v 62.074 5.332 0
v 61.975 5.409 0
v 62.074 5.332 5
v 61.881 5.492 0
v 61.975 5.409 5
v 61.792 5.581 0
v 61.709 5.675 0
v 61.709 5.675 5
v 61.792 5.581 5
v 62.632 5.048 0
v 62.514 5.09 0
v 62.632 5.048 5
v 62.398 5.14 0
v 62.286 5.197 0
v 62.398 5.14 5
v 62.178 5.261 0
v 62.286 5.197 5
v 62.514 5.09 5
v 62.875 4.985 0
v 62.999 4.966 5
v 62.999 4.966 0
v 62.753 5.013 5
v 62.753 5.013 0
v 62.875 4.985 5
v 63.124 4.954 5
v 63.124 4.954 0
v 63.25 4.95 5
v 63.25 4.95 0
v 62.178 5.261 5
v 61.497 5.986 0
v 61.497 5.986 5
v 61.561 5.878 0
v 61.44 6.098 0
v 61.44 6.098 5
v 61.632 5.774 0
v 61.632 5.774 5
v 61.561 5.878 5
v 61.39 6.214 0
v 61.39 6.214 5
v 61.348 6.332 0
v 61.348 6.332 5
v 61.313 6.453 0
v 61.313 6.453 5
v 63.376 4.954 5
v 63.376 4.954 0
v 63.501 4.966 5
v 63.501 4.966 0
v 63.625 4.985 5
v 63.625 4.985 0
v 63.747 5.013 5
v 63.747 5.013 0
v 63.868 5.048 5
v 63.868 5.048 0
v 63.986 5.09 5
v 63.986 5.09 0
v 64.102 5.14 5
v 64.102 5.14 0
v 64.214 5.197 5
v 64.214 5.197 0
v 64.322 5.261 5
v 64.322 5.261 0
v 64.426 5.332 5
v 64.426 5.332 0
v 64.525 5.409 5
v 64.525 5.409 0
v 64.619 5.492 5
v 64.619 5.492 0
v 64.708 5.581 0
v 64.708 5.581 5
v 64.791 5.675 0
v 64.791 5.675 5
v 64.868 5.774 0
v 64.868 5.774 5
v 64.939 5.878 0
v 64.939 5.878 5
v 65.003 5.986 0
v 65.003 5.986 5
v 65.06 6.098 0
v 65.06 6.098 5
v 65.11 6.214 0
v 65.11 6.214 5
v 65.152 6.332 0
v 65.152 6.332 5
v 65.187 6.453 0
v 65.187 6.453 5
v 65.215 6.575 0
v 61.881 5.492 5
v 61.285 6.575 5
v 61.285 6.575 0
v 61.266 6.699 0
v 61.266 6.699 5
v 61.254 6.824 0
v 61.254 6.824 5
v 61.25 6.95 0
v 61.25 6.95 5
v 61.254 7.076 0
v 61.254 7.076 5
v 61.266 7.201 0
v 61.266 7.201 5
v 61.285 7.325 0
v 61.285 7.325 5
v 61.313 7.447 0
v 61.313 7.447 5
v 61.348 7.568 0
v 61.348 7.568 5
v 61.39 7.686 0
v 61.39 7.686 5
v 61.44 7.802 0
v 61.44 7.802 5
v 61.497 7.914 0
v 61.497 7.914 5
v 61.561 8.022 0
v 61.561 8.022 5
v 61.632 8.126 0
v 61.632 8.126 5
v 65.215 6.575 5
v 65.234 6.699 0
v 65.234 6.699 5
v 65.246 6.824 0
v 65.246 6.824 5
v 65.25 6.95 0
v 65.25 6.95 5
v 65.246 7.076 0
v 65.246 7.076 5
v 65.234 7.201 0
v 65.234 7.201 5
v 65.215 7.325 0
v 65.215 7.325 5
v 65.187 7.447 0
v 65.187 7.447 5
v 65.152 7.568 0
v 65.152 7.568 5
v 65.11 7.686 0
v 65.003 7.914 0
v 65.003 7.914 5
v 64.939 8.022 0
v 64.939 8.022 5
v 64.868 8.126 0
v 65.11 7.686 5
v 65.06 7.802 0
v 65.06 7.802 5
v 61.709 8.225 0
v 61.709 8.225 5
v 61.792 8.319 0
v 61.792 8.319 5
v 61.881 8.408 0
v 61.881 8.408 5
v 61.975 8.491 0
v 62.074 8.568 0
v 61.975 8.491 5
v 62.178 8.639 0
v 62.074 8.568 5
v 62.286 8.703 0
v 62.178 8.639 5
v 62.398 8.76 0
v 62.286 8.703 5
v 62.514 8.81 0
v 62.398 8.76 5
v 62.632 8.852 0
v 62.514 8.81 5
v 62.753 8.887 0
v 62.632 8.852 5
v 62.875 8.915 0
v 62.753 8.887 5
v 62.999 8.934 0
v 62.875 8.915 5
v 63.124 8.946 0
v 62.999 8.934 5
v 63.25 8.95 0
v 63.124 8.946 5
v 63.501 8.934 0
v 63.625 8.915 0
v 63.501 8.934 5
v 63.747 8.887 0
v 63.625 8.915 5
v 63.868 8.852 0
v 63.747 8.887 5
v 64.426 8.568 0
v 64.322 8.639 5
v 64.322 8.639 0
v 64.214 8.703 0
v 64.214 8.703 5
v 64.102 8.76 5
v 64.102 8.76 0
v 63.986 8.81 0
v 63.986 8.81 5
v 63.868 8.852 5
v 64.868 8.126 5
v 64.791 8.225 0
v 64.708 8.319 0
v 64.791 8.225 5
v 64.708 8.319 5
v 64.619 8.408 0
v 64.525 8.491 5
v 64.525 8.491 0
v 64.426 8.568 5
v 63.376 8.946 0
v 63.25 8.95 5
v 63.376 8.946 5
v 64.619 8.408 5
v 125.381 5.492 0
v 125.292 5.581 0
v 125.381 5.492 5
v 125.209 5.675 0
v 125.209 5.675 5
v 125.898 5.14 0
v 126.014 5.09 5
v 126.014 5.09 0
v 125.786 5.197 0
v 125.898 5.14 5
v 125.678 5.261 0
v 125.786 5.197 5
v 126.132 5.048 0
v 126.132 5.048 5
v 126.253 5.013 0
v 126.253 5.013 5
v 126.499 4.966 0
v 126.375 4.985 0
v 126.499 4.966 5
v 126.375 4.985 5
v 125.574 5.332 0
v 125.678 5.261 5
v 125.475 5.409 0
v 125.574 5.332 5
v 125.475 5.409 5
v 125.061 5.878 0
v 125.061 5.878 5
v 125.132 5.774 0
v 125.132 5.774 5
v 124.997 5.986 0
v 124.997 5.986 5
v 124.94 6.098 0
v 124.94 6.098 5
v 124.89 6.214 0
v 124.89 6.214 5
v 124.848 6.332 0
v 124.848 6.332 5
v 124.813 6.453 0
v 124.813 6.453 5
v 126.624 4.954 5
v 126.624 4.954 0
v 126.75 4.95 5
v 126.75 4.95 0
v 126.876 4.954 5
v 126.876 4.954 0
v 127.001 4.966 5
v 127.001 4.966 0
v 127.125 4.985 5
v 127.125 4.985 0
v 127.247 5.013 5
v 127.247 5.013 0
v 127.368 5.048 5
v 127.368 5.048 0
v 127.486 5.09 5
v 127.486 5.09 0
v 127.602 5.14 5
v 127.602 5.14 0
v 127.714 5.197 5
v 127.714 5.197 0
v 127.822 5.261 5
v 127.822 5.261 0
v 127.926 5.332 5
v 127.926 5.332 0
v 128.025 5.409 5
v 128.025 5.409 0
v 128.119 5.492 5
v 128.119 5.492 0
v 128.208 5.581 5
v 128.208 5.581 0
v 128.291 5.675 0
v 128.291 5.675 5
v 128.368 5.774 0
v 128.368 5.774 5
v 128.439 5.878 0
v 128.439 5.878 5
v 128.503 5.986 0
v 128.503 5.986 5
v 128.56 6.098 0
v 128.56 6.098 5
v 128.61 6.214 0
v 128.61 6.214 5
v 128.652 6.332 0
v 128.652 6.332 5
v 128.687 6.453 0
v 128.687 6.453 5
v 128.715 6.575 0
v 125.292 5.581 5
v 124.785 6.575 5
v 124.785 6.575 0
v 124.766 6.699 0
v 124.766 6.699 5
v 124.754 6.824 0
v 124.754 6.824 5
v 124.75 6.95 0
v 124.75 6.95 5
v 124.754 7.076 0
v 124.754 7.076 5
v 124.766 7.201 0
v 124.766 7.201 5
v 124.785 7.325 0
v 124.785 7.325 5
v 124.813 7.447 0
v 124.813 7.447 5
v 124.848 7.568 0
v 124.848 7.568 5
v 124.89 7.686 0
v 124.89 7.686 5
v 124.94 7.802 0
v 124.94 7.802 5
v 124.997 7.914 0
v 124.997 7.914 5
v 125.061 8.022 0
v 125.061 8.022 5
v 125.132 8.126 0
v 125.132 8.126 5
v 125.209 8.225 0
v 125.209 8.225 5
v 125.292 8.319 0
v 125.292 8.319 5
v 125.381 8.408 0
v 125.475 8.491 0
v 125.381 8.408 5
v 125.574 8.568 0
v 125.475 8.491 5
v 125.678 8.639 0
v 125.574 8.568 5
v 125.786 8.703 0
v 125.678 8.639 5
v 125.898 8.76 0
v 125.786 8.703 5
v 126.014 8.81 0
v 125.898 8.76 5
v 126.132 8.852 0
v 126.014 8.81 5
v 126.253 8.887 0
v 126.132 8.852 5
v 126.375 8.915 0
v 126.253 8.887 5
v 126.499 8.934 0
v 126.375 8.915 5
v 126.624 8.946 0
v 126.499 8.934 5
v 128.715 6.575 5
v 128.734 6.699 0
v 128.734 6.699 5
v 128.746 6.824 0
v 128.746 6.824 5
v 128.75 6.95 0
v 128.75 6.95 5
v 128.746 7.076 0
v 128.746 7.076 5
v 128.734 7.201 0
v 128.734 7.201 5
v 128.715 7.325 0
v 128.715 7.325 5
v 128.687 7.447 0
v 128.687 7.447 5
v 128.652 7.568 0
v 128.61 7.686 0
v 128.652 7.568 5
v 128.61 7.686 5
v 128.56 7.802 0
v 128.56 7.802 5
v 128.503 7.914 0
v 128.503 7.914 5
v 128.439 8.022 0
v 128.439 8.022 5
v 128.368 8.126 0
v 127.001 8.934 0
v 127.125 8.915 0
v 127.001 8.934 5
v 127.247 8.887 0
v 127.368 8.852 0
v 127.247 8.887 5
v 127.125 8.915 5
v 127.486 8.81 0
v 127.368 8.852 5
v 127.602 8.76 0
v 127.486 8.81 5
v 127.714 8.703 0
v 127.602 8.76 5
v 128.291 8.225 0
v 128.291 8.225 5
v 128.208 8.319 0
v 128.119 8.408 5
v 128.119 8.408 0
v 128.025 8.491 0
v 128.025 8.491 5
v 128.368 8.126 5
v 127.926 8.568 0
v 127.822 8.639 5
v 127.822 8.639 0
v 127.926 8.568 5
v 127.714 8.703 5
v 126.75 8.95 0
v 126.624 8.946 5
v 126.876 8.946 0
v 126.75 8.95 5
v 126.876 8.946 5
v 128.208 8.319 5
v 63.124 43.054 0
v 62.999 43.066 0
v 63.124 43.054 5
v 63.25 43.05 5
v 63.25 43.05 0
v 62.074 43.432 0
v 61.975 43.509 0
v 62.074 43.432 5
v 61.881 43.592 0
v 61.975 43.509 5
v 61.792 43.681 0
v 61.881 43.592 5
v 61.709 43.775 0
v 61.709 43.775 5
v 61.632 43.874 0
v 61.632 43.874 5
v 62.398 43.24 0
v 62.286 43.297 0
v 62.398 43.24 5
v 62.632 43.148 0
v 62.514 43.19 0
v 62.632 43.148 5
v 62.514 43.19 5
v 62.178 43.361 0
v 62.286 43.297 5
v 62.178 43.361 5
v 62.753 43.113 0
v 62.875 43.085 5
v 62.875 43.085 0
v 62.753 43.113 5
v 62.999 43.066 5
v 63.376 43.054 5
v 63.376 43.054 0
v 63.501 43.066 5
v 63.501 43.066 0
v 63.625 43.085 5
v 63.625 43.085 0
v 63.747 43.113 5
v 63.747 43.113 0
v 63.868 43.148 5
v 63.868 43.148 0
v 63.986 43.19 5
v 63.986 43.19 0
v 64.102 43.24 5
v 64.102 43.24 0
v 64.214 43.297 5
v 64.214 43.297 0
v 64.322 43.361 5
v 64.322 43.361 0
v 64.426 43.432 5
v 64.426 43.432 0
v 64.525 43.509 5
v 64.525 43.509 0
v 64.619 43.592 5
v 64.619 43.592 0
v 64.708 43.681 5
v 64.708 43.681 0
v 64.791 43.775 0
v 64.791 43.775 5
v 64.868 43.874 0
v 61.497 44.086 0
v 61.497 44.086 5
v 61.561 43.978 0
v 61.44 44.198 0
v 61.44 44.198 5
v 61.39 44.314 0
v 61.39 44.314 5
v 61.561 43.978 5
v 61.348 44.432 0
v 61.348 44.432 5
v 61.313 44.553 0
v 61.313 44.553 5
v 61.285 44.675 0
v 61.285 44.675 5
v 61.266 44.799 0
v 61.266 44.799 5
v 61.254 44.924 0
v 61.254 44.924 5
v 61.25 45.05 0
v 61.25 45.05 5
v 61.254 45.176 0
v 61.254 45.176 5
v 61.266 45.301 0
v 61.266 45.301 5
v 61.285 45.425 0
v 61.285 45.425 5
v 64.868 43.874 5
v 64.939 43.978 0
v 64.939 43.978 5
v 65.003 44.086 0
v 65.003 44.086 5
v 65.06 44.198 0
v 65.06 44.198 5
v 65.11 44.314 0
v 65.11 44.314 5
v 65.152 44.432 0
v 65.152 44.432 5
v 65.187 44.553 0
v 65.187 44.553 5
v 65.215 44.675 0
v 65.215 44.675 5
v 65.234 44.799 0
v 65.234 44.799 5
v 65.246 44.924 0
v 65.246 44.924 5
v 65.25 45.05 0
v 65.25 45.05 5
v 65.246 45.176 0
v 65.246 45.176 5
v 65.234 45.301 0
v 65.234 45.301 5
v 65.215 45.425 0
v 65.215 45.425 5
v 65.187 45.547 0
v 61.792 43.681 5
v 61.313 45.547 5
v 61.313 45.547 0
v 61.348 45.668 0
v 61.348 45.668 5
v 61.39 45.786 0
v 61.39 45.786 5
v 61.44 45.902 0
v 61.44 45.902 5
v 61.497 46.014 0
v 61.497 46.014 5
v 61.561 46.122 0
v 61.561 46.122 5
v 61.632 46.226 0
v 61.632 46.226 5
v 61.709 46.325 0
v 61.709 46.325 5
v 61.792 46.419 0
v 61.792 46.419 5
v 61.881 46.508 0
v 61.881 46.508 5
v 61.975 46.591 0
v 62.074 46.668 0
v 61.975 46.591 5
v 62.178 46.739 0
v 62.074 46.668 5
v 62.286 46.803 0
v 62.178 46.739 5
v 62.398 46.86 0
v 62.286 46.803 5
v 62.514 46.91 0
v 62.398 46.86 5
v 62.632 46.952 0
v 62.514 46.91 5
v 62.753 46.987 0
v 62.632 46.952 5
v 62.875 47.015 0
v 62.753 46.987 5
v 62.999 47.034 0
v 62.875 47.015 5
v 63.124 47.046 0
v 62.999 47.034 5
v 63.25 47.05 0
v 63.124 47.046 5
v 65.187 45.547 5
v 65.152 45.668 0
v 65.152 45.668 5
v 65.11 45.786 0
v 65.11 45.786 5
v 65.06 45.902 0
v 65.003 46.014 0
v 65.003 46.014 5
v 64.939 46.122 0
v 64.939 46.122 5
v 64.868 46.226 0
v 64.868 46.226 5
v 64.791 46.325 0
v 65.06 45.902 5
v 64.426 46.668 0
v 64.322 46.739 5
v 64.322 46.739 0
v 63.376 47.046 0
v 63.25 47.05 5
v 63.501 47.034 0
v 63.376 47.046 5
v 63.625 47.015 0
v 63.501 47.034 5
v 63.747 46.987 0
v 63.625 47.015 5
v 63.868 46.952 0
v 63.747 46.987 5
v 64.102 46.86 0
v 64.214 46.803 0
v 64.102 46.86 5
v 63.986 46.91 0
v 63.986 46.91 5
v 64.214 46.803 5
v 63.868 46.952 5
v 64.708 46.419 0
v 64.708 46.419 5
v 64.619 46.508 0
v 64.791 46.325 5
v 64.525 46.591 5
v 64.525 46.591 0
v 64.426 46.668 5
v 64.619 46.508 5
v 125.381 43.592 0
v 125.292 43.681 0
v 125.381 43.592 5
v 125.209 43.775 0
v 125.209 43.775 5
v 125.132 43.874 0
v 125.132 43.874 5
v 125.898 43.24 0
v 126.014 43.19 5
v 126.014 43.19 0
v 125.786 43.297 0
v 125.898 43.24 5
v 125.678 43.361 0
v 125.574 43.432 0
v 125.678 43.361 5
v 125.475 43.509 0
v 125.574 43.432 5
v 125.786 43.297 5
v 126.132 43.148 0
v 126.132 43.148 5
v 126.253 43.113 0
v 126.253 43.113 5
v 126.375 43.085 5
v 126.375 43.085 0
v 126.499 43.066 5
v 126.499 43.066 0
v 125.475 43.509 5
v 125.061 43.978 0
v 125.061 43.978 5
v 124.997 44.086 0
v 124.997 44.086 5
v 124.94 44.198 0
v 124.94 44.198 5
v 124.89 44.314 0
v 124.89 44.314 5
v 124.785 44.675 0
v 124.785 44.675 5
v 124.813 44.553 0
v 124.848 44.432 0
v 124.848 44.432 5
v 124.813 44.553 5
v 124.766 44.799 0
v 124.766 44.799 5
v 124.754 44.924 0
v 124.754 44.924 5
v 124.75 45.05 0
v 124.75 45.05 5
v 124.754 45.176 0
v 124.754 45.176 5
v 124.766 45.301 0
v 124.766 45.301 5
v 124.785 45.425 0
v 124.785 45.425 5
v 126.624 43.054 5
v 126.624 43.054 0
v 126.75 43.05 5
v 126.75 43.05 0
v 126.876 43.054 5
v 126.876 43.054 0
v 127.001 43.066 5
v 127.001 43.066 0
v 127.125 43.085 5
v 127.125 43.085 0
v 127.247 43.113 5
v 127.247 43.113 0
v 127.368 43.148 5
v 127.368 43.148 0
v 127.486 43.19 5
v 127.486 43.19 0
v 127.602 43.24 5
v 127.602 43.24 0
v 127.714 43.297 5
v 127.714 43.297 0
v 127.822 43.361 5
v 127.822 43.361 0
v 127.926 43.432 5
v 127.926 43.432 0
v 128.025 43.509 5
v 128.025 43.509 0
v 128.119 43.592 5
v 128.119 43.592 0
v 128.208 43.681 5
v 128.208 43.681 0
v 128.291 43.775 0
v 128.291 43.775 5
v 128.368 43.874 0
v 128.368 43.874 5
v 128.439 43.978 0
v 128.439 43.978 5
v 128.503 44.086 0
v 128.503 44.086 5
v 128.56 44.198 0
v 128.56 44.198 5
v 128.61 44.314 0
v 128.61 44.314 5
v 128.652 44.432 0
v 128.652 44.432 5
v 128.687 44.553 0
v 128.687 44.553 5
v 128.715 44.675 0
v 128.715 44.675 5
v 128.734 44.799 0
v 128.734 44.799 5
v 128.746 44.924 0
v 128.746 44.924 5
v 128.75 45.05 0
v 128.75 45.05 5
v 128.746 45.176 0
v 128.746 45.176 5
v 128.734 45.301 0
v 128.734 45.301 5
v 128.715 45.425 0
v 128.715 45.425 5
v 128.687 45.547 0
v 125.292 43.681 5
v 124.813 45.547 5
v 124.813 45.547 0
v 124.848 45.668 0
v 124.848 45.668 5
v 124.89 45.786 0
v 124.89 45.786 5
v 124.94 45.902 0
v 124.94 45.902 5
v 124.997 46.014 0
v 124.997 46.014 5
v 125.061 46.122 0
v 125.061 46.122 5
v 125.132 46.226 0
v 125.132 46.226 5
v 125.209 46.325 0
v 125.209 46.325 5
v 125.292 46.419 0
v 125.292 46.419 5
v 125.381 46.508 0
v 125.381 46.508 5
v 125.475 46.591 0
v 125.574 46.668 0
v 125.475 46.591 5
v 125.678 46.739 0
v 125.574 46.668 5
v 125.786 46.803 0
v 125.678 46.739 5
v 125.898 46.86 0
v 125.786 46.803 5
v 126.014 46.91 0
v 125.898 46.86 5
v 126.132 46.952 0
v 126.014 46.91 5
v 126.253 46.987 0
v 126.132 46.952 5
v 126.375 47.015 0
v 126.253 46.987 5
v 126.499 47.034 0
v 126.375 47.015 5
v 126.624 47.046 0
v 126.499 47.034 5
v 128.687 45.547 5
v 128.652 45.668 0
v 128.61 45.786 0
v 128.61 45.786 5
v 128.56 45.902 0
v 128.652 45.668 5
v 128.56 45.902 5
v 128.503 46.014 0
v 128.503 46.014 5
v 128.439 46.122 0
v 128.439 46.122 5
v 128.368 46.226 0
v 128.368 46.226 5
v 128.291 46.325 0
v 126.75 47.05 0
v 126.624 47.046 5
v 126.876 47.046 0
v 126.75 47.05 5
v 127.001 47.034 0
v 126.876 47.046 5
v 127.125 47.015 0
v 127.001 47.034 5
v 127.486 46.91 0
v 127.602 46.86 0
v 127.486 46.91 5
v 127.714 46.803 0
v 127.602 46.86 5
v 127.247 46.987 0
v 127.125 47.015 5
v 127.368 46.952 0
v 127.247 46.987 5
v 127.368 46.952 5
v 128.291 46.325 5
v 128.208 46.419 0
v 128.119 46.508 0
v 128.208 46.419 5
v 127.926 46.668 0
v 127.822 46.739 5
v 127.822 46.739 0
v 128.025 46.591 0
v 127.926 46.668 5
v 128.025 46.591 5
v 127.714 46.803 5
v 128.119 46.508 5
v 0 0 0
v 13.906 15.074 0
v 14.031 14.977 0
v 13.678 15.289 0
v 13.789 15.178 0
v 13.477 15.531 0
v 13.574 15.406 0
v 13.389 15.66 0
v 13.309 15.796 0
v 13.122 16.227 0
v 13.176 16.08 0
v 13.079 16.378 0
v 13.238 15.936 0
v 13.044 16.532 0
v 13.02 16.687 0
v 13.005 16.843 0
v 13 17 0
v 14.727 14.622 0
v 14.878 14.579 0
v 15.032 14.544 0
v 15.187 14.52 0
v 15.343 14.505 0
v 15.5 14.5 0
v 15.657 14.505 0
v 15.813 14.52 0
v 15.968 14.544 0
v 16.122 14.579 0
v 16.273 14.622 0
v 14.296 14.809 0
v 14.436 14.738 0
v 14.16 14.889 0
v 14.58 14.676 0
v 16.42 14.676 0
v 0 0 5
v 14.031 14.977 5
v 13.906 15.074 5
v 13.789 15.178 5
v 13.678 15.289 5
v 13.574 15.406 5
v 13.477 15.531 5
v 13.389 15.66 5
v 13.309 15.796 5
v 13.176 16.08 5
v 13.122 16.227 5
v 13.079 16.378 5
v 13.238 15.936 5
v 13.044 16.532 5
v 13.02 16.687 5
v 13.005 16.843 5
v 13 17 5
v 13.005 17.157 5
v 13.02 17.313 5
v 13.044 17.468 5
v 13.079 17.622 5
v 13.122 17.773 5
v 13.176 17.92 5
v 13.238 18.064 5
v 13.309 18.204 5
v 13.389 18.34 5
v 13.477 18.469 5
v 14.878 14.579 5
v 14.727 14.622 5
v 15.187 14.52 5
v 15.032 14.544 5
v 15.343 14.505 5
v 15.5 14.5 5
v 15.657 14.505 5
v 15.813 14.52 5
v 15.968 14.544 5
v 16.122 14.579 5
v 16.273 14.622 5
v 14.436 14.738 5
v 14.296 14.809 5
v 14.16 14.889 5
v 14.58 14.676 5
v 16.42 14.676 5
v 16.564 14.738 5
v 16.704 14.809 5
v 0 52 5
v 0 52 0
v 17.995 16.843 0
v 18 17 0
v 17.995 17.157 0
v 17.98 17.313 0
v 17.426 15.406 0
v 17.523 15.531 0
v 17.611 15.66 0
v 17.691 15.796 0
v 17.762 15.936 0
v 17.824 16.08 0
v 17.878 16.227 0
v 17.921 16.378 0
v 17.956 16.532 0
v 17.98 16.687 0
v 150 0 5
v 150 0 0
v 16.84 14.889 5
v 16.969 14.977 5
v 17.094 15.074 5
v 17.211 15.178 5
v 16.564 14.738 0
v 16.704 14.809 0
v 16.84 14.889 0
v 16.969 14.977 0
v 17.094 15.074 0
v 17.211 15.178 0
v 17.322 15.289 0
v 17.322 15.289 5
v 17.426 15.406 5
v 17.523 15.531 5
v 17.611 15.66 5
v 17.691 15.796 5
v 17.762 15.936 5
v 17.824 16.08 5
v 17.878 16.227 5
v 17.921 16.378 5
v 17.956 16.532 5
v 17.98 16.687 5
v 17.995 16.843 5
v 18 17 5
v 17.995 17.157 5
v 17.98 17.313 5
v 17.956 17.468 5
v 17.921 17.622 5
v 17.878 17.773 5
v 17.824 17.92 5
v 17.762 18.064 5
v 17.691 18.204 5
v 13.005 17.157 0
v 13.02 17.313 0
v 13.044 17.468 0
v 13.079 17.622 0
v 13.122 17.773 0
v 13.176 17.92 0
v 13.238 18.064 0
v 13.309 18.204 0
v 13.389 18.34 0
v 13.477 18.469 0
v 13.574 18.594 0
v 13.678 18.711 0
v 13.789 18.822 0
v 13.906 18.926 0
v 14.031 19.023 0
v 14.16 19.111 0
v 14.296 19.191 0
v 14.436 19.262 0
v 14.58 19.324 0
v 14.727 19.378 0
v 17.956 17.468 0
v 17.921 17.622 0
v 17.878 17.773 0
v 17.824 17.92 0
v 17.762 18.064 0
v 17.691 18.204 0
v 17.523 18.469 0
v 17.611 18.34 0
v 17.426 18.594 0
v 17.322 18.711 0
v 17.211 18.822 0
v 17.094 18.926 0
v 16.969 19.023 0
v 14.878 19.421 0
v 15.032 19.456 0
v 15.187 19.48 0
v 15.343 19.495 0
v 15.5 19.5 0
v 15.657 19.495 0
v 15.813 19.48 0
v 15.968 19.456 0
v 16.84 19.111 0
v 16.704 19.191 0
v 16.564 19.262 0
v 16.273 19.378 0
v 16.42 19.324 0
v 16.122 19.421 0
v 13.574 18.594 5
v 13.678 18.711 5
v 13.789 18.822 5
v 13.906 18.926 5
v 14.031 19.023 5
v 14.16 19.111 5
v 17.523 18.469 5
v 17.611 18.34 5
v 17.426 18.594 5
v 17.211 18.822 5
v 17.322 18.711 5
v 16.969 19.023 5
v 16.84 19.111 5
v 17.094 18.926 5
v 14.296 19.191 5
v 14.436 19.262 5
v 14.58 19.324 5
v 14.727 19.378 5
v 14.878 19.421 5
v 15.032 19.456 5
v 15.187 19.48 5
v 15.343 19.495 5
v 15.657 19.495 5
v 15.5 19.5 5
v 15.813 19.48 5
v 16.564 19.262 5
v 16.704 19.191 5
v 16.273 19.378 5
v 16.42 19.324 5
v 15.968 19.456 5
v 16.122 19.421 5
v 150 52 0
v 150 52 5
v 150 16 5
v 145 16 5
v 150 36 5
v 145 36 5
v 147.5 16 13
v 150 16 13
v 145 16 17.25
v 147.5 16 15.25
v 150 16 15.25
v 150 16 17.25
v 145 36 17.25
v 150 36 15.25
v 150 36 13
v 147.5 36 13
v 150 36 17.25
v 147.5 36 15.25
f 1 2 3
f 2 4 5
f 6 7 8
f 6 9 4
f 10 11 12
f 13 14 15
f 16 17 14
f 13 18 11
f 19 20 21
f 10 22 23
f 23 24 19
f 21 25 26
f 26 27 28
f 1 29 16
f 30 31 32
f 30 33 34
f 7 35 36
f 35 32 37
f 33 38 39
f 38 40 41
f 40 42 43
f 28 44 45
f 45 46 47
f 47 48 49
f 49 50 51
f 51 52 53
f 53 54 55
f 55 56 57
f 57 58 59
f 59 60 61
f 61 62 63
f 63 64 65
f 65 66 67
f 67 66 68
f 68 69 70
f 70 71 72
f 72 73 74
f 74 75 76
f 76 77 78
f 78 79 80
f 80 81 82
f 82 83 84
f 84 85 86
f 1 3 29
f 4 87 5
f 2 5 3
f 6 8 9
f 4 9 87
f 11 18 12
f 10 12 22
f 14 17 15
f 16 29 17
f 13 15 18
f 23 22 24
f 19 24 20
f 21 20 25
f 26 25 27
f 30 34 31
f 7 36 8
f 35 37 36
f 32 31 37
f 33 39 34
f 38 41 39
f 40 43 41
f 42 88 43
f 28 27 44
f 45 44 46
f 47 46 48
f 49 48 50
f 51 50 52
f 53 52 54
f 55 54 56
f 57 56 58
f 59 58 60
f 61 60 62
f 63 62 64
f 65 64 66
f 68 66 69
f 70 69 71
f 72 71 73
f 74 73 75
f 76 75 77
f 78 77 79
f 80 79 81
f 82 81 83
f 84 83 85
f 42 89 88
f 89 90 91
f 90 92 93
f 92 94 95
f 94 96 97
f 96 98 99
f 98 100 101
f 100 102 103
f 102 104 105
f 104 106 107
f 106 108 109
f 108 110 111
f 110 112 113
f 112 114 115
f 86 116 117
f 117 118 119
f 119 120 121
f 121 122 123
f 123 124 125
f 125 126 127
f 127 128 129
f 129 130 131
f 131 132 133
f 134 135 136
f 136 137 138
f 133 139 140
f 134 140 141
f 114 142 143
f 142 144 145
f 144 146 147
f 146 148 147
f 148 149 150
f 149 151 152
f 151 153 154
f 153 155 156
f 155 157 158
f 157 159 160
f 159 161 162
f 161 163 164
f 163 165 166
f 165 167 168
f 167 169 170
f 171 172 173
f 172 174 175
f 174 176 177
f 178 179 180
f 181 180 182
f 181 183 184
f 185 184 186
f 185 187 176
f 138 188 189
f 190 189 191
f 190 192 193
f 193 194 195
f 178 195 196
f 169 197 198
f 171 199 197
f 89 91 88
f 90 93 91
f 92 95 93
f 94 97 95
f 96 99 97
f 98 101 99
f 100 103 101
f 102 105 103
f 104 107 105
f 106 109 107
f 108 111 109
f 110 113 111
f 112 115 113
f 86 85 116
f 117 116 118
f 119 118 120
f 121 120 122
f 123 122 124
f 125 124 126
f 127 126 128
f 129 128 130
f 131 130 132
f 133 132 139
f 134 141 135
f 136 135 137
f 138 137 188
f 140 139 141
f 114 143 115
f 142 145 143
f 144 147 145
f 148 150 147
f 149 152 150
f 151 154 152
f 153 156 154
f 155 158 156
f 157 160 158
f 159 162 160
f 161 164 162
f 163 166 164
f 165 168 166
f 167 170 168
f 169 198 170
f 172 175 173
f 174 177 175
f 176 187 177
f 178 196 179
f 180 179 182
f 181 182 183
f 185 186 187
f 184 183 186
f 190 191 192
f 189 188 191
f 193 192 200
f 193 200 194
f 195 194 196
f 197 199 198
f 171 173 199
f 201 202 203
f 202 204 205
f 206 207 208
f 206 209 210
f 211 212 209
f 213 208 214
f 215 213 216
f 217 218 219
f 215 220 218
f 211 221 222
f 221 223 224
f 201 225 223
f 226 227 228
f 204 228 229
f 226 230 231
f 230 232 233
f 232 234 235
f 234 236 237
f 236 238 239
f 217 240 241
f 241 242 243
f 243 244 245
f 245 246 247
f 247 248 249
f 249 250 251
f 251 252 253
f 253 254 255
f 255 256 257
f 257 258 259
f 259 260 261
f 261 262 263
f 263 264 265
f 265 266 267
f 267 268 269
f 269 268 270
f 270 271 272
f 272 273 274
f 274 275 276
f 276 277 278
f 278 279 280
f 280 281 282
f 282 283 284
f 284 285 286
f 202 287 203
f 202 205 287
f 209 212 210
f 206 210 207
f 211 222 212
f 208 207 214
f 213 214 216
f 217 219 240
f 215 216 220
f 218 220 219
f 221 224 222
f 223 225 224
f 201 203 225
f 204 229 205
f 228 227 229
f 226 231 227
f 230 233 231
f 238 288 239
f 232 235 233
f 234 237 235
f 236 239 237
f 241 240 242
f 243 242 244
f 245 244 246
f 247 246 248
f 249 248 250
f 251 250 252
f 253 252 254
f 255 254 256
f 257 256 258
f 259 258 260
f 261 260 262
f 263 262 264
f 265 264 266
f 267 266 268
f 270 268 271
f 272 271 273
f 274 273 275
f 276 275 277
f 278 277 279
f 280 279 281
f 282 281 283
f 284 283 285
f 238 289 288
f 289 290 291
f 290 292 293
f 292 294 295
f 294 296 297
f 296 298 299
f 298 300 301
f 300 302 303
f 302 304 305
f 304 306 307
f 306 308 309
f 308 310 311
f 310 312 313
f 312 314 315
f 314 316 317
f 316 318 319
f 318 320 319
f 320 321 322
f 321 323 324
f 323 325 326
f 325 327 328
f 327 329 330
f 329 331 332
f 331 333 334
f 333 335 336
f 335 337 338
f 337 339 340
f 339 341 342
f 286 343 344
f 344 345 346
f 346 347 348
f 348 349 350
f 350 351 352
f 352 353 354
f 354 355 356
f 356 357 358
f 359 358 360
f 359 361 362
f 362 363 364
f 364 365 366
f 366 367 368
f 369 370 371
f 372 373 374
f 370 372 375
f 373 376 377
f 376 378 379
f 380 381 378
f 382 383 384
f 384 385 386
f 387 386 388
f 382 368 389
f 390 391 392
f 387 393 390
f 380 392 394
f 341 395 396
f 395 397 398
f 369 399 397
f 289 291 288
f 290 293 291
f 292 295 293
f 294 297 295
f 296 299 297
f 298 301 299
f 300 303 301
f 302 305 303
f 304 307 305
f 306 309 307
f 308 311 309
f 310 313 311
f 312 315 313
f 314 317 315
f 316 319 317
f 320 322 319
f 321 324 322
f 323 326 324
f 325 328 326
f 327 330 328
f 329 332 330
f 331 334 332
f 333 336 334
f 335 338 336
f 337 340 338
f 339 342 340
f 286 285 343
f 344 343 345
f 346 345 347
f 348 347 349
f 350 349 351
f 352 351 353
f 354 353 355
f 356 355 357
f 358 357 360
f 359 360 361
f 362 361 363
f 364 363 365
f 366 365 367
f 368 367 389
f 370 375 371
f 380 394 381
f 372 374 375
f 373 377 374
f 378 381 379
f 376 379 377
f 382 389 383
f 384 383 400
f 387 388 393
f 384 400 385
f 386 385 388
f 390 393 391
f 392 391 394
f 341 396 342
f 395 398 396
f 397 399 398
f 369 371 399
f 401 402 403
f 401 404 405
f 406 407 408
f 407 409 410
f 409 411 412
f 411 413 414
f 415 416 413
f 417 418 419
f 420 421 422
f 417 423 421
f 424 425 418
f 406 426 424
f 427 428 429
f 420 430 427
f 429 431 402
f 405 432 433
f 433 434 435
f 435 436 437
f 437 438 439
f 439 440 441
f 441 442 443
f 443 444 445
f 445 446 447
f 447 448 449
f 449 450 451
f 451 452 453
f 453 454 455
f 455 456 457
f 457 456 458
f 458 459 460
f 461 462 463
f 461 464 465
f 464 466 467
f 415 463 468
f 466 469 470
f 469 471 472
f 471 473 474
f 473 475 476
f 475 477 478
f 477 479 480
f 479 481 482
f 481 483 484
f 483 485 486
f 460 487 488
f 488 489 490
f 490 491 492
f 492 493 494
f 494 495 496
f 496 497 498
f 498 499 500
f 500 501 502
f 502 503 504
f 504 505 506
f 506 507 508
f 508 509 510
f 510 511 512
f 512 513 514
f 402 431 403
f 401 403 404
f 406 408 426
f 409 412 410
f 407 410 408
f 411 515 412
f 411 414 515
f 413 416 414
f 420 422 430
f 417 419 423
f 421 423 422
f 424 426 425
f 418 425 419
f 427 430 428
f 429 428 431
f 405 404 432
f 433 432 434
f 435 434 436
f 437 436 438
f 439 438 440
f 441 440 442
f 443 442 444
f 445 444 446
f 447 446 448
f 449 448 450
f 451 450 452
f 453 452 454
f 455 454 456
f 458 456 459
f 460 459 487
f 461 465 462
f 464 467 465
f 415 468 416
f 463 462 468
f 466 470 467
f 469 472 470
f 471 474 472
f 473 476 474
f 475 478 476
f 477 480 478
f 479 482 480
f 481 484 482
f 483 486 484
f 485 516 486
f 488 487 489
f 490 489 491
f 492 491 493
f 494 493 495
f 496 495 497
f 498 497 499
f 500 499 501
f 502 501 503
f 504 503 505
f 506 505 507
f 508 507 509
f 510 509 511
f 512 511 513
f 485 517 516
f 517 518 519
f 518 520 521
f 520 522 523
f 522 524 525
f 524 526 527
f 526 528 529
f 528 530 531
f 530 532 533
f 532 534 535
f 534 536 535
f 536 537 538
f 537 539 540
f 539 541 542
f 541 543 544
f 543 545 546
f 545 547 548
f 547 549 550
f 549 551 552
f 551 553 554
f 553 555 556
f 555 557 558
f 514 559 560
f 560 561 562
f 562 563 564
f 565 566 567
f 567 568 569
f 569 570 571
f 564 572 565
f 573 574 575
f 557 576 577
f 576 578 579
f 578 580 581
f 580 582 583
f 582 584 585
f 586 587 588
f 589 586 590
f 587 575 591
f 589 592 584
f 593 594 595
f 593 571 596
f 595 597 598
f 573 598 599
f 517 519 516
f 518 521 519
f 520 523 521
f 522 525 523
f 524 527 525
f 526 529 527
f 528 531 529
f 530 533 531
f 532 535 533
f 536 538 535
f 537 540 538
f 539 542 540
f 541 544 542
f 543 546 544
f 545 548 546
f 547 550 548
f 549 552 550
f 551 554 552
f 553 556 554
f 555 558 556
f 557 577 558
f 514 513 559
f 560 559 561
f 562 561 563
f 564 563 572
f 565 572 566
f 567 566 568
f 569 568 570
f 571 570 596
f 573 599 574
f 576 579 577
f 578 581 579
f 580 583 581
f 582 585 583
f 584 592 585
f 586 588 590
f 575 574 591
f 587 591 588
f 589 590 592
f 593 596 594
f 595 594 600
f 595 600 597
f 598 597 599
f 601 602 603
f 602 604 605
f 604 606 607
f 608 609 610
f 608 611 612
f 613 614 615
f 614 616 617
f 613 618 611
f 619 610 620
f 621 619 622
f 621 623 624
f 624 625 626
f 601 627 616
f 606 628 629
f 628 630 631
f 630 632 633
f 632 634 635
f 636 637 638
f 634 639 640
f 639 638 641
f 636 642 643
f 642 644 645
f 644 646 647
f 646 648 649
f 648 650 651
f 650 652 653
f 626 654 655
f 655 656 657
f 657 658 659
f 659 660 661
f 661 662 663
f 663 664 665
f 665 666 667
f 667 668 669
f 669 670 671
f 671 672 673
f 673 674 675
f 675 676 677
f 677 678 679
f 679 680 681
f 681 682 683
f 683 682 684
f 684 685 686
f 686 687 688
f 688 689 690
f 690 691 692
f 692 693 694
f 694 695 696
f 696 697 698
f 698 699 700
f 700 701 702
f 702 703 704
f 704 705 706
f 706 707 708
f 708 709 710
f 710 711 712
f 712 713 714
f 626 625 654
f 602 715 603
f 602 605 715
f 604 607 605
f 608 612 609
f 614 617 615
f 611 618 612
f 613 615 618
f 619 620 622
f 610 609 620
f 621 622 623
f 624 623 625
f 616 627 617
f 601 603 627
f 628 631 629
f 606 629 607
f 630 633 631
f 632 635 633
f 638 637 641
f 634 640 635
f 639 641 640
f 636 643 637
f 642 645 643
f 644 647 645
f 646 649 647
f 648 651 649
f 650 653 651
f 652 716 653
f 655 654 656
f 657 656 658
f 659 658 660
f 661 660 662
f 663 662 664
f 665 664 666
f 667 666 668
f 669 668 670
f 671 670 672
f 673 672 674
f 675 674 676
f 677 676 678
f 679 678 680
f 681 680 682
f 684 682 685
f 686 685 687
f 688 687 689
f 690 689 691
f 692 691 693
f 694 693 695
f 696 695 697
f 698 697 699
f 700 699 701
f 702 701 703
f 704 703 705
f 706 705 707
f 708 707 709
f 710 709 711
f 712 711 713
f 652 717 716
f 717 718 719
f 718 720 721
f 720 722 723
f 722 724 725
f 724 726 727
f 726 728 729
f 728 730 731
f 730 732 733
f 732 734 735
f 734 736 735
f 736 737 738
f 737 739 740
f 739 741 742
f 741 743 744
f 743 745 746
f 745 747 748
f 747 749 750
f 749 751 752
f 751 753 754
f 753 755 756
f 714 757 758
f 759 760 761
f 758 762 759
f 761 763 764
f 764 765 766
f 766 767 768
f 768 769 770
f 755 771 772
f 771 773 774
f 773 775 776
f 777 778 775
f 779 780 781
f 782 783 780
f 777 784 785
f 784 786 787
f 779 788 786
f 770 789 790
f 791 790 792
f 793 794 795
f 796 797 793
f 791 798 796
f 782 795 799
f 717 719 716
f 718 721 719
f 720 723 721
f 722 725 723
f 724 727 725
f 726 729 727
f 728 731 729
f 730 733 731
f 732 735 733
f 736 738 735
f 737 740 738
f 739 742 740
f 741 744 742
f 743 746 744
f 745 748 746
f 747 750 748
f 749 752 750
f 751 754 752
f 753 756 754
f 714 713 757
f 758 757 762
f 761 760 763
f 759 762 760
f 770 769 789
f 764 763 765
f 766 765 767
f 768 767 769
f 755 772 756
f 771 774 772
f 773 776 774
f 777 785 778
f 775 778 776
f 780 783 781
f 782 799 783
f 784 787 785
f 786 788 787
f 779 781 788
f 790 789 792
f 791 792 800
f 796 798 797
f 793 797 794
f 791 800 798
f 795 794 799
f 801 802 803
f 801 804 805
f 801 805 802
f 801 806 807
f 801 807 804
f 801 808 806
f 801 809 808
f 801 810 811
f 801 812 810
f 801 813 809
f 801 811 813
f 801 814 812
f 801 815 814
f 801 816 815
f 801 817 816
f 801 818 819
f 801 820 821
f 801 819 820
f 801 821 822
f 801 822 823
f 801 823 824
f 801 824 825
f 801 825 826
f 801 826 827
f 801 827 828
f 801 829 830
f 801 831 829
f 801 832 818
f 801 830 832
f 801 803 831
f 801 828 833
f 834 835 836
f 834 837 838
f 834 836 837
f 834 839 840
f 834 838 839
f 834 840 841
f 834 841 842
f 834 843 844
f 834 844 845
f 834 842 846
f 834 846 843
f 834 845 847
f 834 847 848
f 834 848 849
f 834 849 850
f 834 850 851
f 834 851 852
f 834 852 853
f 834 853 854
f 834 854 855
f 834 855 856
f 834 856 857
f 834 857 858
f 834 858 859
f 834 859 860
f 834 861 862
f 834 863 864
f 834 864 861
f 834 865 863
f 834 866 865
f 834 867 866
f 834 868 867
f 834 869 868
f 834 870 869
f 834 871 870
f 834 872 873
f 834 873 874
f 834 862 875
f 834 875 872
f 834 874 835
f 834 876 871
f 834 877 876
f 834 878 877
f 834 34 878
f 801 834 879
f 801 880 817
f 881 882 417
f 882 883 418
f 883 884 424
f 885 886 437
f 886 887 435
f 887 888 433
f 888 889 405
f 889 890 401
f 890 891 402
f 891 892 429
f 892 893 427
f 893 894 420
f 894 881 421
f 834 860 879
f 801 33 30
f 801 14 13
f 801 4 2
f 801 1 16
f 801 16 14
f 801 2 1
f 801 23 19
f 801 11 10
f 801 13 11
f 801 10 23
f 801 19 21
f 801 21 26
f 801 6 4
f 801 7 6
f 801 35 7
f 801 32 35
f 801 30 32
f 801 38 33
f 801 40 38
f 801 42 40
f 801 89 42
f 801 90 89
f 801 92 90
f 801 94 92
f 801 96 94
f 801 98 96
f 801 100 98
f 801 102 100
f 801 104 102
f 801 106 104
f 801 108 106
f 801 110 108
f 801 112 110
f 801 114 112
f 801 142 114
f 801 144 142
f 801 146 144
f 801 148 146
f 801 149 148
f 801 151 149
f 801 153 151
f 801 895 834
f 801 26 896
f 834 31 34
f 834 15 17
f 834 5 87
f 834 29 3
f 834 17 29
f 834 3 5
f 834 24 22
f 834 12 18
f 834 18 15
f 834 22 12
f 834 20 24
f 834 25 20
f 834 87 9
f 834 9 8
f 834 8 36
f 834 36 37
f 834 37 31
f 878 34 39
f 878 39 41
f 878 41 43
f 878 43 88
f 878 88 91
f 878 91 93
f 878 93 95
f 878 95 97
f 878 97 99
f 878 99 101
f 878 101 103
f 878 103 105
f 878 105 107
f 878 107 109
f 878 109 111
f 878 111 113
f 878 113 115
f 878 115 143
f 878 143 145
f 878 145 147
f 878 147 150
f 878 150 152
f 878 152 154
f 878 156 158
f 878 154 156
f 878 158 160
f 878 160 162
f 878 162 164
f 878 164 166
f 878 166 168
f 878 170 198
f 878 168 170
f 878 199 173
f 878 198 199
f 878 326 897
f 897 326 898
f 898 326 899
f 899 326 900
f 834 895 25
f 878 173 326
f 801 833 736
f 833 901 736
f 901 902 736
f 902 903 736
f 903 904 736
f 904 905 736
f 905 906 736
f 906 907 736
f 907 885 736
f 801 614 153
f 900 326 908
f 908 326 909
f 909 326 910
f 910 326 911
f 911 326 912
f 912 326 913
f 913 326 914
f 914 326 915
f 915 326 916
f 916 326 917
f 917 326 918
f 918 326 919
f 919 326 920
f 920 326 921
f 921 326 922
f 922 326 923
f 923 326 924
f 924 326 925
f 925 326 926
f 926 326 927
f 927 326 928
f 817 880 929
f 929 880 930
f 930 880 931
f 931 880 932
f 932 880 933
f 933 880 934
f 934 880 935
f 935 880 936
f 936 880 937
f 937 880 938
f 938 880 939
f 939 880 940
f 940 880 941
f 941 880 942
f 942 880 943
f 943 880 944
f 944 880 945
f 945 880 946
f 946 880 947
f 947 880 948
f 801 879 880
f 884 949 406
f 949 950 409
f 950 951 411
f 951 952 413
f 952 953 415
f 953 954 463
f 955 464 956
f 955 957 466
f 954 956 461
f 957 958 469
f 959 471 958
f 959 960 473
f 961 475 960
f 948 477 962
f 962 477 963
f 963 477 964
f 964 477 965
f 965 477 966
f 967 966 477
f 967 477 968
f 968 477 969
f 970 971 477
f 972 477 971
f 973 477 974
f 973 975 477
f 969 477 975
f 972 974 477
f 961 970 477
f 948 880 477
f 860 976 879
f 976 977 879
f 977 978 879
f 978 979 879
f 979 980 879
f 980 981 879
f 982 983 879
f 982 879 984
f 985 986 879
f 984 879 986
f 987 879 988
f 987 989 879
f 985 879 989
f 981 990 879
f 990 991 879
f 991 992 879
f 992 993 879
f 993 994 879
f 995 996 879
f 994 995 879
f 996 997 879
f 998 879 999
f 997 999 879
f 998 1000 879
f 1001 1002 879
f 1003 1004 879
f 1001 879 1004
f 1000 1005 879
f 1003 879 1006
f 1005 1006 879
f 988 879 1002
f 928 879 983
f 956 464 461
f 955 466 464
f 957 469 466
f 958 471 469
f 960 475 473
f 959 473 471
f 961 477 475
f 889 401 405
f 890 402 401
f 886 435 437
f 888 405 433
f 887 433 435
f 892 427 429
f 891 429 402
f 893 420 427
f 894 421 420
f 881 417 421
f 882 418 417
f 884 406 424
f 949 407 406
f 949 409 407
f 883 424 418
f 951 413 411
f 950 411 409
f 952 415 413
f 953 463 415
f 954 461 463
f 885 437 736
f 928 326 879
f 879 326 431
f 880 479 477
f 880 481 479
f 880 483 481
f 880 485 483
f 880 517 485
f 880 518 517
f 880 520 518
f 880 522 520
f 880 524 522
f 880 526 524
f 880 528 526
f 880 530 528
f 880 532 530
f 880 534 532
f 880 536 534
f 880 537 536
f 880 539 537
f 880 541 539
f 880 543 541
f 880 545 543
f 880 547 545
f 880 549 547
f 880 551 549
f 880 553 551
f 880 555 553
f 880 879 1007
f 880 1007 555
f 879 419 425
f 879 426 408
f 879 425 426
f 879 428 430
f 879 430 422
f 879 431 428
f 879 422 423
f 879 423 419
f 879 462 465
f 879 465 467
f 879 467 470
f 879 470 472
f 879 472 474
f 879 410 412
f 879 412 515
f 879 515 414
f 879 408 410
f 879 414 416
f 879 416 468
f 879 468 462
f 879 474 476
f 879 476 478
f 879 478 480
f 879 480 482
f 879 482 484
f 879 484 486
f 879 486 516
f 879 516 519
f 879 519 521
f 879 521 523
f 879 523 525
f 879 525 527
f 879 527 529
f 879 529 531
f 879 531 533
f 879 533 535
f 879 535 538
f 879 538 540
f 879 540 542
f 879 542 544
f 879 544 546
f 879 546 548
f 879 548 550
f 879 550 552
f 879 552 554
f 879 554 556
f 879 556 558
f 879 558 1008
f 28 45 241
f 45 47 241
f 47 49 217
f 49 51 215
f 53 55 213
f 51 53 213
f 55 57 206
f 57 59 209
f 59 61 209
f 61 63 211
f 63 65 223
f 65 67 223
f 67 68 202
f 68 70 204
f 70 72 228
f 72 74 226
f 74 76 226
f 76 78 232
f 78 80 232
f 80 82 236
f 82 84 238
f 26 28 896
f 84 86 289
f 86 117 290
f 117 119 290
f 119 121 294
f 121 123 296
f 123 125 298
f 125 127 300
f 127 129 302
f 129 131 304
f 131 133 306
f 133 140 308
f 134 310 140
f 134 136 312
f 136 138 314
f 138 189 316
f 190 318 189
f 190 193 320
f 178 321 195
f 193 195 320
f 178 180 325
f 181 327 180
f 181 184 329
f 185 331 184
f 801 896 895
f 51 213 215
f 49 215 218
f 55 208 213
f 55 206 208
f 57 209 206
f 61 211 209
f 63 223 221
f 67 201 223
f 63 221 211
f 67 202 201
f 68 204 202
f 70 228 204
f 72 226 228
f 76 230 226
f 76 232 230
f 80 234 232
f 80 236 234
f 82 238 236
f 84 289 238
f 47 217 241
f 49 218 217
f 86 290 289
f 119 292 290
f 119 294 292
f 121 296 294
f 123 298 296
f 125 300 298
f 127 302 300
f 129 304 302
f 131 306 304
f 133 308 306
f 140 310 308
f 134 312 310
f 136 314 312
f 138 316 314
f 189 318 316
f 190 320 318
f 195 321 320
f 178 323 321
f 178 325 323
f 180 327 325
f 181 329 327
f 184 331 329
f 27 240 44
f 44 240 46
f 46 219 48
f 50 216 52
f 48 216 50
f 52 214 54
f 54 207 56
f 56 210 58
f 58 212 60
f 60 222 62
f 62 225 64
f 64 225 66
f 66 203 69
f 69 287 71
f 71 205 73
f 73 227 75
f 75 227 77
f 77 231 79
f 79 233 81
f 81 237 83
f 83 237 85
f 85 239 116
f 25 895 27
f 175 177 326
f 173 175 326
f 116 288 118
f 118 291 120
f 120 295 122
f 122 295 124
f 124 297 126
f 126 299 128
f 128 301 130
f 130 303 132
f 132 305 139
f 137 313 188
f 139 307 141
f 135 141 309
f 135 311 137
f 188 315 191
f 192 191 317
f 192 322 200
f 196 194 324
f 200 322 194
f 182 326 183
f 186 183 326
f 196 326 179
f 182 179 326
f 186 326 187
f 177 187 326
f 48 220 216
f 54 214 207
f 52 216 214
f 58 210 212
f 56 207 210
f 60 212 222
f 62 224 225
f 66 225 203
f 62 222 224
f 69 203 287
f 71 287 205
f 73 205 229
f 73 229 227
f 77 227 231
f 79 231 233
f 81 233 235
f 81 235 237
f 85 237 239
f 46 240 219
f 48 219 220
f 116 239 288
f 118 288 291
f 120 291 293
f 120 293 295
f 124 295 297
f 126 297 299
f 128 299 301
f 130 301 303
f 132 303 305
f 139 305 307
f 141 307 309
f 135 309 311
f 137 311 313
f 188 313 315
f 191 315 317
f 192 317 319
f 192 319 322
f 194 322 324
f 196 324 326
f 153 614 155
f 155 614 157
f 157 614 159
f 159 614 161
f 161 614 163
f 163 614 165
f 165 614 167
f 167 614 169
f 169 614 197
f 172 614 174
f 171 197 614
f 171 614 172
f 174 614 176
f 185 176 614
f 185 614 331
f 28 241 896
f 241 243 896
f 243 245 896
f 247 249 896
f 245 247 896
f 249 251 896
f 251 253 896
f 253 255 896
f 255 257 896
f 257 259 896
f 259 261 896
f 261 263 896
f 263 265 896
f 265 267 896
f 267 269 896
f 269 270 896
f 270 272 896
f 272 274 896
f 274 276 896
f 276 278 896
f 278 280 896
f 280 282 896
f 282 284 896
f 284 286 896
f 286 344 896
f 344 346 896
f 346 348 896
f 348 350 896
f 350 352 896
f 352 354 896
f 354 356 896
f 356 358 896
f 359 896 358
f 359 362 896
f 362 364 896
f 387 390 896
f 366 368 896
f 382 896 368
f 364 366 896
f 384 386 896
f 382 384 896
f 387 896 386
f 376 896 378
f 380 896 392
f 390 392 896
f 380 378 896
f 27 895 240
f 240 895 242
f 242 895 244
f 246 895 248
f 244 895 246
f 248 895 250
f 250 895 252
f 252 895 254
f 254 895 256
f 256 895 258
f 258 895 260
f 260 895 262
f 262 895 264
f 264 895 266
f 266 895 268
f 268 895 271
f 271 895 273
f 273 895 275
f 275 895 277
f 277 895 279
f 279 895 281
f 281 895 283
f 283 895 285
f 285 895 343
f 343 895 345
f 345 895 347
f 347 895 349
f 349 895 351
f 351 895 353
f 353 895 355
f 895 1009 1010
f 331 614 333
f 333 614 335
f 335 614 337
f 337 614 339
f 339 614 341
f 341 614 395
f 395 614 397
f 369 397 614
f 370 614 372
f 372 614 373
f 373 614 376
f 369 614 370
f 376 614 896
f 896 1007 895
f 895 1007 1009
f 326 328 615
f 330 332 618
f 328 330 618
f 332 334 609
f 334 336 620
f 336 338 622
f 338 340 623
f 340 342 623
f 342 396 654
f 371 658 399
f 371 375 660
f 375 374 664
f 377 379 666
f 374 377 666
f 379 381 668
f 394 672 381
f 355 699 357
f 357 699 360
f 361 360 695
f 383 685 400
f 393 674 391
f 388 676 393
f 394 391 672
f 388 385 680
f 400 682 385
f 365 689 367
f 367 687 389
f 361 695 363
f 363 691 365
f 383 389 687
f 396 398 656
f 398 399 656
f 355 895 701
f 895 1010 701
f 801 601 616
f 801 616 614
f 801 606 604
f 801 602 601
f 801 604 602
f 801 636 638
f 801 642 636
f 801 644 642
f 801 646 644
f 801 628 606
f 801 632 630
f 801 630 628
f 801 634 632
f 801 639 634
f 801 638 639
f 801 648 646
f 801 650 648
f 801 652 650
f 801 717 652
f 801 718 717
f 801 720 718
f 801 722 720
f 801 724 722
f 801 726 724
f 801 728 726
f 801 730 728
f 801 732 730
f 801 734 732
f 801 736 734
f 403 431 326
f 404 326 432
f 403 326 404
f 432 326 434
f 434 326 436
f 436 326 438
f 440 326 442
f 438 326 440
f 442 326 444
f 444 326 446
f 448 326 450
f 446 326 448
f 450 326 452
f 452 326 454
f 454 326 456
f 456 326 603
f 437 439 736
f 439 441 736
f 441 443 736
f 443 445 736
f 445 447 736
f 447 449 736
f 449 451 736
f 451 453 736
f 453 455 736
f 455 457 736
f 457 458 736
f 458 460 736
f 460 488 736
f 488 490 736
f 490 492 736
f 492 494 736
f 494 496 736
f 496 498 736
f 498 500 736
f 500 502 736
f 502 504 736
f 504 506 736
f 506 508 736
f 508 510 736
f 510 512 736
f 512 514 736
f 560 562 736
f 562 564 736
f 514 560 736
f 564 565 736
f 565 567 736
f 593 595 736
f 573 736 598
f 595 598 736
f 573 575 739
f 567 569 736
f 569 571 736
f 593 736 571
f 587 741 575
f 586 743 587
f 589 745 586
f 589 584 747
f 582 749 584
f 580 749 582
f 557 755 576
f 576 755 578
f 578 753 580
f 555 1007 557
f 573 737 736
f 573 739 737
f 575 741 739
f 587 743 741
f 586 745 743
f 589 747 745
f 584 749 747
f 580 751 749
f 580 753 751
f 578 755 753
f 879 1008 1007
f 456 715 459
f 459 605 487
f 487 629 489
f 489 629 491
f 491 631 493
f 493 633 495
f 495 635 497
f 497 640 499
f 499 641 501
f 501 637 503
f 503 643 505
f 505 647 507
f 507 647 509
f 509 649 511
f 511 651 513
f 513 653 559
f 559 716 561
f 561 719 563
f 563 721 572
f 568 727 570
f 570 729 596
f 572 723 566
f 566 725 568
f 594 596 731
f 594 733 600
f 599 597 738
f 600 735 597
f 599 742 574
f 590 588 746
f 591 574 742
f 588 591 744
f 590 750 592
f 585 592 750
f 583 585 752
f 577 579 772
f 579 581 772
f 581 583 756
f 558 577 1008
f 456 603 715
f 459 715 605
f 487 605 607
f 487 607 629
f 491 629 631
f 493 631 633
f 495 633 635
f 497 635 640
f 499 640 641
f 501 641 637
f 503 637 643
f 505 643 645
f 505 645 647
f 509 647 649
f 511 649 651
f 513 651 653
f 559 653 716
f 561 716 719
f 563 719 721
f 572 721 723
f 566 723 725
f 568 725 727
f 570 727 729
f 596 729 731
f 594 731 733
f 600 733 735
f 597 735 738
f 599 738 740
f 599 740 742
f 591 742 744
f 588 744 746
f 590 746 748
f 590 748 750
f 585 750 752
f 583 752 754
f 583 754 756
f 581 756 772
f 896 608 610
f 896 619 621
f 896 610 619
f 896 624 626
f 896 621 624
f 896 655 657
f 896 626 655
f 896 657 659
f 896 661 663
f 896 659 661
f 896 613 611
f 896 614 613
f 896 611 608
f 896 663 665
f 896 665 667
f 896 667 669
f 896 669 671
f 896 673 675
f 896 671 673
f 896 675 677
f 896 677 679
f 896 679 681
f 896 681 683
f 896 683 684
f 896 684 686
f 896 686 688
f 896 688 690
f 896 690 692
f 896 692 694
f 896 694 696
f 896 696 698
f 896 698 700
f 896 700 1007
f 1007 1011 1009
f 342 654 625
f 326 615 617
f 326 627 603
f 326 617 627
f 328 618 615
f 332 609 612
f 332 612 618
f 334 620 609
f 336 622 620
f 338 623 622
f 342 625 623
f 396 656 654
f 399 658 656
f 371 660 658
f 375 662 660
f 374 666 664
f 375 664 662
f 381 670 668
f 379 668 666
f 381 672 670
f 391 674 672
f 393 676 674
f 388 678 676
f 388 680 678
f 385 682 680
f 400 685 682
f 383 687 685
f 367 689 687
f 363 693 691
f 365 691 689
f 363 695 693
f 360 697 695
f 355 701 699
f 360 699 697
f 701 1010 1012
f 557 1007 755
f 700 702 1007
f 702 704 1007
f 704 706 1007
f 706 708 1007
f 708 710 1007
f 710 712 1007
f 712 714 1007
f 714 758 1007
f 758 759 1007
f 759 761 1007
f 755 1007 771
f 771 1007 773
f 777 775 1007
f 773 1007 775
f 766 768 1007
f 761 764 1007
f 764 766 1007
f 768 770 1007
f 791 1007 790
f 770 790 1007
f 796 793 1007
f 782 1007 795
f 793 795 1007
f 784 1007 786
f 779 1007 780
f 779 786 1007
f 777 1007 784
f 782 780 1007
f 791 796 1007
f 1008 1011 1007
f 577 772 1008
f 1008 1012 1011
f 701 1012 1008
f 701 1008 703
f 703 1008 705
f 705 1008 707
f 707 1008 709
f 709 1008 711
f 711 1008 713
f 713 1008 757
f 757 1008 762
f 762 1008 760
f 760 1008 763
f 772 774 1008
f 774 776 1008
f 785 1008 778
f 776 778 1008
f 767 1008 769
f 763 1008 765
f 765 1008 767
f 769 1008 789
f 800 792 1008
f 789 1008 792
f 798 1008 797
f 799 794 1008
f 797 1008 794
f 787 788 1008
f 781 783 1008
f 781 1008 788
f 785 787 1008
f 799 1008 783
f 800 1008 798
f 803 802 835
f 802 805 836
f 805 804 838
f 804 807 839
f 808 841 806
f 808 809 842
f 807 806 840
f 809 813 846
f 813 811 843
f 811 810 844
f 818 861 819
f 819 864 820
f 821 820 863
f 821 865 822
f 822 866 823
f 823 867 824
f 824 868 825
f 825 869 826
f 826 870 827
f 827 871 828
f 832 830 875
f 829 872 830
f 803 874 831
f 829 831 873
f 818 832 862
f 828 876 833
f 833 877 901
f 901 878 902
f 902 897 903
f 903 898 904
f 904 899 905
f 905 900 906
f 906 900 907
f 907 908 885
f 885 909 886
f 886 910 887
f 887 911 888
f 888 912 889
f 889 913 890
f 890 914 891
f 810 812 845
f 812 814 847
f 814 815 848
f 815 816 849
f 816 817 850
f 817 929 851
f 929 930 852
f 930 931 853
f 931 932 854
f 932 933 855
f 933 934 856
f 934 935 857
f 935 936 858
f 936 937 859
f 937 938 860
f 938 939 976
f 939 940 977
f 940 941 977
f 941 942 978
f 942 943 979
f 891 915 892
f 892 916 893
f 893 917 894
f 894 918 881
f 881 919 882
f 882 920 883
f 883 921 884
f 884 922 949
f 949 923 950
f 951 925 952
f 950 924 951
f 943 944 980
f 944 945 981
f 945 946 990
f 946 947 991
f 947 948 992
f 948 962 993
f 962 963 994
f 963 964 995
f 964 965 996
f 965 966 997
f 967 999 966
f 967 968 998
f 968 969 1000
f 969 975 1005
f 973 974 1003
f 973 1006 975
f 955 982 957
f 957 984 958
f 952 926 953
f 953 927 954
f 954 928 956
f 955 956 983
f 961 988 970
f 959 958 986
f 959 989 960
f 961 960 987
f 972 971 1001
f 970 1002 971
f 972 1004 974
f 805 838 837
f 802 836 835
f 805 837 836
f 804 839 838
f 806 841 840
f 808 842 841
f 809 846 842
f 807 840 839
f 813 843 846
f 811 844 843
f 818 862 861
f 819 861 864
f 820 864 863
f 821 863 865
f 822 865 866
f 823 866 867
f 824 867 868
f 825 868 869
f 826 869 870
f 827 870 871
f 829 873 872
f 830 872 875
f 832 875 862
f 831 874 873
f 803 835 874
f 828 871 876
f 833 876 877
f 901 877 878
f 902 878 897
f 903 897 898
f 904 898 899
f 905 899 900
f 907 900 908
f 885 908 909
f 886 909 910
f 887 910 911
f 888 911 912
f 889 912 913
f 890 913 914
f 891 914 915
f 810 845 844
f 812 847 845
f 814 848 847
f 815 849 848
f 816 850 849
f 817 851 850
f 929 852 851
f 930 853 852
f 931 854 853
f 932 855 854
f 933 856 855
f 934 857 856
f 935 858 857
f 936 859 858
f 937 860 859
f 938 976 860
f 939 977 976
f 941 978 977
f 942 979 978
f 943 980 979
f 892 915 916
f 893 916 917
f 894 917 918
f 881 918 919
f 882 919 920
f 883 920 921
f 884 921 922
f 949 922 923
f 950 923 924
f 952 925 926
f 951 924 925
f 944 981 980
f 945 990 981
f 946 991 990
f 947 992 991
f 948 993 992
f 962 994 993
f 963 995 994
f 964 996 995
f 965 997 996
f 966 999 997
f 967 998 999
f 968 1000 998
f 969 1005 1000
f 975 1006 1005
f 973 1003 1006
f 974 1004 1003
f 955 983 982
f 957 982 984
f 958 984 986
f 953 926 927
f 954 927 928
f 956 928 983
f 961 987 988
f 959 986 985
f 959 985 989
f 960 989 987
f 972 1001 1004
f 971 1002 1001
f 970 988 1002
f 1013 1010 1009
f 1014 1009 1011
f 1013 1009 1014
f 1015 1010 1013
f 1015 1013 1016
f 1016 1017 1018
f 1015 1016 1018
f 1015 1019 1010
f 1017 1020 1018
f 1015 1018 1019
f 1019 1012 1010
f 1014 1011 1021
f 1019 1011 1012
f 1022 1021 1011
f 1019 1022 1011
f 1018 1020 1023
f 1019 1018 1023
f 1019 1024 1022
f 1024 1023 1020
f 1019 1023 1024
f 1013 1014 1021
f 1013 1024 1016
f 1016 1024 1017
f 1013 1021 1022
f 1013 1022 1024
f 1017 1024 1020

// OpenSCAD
$fn = 100;

union() {
    difference() {
        cube([150, 52, 5]);
        translate([15.5, 17, 0]) cylinder(h = 5, d = 5);
        translate([57, 0.5, 0]) union() {
            translate([6.25, 6.45, 0]) cylinder(h = 5, d = 4);
            translate([69.75, 6.45, 0]) cylinder(h = 5, d = 4);
            translate([6.25, 44.55, 0]) cylinder(h = 5, d = 4);
            translate([69.75, 44.55, 0]) cylinder(h = 5, d = 4);
        }

    }

    difference() {
        translate([145, 16, 5]) cube([5, 20, 12.25]);
        translate([147.5, 16, 13]) cube([2.5, 20, 2.25]);
    }
}
